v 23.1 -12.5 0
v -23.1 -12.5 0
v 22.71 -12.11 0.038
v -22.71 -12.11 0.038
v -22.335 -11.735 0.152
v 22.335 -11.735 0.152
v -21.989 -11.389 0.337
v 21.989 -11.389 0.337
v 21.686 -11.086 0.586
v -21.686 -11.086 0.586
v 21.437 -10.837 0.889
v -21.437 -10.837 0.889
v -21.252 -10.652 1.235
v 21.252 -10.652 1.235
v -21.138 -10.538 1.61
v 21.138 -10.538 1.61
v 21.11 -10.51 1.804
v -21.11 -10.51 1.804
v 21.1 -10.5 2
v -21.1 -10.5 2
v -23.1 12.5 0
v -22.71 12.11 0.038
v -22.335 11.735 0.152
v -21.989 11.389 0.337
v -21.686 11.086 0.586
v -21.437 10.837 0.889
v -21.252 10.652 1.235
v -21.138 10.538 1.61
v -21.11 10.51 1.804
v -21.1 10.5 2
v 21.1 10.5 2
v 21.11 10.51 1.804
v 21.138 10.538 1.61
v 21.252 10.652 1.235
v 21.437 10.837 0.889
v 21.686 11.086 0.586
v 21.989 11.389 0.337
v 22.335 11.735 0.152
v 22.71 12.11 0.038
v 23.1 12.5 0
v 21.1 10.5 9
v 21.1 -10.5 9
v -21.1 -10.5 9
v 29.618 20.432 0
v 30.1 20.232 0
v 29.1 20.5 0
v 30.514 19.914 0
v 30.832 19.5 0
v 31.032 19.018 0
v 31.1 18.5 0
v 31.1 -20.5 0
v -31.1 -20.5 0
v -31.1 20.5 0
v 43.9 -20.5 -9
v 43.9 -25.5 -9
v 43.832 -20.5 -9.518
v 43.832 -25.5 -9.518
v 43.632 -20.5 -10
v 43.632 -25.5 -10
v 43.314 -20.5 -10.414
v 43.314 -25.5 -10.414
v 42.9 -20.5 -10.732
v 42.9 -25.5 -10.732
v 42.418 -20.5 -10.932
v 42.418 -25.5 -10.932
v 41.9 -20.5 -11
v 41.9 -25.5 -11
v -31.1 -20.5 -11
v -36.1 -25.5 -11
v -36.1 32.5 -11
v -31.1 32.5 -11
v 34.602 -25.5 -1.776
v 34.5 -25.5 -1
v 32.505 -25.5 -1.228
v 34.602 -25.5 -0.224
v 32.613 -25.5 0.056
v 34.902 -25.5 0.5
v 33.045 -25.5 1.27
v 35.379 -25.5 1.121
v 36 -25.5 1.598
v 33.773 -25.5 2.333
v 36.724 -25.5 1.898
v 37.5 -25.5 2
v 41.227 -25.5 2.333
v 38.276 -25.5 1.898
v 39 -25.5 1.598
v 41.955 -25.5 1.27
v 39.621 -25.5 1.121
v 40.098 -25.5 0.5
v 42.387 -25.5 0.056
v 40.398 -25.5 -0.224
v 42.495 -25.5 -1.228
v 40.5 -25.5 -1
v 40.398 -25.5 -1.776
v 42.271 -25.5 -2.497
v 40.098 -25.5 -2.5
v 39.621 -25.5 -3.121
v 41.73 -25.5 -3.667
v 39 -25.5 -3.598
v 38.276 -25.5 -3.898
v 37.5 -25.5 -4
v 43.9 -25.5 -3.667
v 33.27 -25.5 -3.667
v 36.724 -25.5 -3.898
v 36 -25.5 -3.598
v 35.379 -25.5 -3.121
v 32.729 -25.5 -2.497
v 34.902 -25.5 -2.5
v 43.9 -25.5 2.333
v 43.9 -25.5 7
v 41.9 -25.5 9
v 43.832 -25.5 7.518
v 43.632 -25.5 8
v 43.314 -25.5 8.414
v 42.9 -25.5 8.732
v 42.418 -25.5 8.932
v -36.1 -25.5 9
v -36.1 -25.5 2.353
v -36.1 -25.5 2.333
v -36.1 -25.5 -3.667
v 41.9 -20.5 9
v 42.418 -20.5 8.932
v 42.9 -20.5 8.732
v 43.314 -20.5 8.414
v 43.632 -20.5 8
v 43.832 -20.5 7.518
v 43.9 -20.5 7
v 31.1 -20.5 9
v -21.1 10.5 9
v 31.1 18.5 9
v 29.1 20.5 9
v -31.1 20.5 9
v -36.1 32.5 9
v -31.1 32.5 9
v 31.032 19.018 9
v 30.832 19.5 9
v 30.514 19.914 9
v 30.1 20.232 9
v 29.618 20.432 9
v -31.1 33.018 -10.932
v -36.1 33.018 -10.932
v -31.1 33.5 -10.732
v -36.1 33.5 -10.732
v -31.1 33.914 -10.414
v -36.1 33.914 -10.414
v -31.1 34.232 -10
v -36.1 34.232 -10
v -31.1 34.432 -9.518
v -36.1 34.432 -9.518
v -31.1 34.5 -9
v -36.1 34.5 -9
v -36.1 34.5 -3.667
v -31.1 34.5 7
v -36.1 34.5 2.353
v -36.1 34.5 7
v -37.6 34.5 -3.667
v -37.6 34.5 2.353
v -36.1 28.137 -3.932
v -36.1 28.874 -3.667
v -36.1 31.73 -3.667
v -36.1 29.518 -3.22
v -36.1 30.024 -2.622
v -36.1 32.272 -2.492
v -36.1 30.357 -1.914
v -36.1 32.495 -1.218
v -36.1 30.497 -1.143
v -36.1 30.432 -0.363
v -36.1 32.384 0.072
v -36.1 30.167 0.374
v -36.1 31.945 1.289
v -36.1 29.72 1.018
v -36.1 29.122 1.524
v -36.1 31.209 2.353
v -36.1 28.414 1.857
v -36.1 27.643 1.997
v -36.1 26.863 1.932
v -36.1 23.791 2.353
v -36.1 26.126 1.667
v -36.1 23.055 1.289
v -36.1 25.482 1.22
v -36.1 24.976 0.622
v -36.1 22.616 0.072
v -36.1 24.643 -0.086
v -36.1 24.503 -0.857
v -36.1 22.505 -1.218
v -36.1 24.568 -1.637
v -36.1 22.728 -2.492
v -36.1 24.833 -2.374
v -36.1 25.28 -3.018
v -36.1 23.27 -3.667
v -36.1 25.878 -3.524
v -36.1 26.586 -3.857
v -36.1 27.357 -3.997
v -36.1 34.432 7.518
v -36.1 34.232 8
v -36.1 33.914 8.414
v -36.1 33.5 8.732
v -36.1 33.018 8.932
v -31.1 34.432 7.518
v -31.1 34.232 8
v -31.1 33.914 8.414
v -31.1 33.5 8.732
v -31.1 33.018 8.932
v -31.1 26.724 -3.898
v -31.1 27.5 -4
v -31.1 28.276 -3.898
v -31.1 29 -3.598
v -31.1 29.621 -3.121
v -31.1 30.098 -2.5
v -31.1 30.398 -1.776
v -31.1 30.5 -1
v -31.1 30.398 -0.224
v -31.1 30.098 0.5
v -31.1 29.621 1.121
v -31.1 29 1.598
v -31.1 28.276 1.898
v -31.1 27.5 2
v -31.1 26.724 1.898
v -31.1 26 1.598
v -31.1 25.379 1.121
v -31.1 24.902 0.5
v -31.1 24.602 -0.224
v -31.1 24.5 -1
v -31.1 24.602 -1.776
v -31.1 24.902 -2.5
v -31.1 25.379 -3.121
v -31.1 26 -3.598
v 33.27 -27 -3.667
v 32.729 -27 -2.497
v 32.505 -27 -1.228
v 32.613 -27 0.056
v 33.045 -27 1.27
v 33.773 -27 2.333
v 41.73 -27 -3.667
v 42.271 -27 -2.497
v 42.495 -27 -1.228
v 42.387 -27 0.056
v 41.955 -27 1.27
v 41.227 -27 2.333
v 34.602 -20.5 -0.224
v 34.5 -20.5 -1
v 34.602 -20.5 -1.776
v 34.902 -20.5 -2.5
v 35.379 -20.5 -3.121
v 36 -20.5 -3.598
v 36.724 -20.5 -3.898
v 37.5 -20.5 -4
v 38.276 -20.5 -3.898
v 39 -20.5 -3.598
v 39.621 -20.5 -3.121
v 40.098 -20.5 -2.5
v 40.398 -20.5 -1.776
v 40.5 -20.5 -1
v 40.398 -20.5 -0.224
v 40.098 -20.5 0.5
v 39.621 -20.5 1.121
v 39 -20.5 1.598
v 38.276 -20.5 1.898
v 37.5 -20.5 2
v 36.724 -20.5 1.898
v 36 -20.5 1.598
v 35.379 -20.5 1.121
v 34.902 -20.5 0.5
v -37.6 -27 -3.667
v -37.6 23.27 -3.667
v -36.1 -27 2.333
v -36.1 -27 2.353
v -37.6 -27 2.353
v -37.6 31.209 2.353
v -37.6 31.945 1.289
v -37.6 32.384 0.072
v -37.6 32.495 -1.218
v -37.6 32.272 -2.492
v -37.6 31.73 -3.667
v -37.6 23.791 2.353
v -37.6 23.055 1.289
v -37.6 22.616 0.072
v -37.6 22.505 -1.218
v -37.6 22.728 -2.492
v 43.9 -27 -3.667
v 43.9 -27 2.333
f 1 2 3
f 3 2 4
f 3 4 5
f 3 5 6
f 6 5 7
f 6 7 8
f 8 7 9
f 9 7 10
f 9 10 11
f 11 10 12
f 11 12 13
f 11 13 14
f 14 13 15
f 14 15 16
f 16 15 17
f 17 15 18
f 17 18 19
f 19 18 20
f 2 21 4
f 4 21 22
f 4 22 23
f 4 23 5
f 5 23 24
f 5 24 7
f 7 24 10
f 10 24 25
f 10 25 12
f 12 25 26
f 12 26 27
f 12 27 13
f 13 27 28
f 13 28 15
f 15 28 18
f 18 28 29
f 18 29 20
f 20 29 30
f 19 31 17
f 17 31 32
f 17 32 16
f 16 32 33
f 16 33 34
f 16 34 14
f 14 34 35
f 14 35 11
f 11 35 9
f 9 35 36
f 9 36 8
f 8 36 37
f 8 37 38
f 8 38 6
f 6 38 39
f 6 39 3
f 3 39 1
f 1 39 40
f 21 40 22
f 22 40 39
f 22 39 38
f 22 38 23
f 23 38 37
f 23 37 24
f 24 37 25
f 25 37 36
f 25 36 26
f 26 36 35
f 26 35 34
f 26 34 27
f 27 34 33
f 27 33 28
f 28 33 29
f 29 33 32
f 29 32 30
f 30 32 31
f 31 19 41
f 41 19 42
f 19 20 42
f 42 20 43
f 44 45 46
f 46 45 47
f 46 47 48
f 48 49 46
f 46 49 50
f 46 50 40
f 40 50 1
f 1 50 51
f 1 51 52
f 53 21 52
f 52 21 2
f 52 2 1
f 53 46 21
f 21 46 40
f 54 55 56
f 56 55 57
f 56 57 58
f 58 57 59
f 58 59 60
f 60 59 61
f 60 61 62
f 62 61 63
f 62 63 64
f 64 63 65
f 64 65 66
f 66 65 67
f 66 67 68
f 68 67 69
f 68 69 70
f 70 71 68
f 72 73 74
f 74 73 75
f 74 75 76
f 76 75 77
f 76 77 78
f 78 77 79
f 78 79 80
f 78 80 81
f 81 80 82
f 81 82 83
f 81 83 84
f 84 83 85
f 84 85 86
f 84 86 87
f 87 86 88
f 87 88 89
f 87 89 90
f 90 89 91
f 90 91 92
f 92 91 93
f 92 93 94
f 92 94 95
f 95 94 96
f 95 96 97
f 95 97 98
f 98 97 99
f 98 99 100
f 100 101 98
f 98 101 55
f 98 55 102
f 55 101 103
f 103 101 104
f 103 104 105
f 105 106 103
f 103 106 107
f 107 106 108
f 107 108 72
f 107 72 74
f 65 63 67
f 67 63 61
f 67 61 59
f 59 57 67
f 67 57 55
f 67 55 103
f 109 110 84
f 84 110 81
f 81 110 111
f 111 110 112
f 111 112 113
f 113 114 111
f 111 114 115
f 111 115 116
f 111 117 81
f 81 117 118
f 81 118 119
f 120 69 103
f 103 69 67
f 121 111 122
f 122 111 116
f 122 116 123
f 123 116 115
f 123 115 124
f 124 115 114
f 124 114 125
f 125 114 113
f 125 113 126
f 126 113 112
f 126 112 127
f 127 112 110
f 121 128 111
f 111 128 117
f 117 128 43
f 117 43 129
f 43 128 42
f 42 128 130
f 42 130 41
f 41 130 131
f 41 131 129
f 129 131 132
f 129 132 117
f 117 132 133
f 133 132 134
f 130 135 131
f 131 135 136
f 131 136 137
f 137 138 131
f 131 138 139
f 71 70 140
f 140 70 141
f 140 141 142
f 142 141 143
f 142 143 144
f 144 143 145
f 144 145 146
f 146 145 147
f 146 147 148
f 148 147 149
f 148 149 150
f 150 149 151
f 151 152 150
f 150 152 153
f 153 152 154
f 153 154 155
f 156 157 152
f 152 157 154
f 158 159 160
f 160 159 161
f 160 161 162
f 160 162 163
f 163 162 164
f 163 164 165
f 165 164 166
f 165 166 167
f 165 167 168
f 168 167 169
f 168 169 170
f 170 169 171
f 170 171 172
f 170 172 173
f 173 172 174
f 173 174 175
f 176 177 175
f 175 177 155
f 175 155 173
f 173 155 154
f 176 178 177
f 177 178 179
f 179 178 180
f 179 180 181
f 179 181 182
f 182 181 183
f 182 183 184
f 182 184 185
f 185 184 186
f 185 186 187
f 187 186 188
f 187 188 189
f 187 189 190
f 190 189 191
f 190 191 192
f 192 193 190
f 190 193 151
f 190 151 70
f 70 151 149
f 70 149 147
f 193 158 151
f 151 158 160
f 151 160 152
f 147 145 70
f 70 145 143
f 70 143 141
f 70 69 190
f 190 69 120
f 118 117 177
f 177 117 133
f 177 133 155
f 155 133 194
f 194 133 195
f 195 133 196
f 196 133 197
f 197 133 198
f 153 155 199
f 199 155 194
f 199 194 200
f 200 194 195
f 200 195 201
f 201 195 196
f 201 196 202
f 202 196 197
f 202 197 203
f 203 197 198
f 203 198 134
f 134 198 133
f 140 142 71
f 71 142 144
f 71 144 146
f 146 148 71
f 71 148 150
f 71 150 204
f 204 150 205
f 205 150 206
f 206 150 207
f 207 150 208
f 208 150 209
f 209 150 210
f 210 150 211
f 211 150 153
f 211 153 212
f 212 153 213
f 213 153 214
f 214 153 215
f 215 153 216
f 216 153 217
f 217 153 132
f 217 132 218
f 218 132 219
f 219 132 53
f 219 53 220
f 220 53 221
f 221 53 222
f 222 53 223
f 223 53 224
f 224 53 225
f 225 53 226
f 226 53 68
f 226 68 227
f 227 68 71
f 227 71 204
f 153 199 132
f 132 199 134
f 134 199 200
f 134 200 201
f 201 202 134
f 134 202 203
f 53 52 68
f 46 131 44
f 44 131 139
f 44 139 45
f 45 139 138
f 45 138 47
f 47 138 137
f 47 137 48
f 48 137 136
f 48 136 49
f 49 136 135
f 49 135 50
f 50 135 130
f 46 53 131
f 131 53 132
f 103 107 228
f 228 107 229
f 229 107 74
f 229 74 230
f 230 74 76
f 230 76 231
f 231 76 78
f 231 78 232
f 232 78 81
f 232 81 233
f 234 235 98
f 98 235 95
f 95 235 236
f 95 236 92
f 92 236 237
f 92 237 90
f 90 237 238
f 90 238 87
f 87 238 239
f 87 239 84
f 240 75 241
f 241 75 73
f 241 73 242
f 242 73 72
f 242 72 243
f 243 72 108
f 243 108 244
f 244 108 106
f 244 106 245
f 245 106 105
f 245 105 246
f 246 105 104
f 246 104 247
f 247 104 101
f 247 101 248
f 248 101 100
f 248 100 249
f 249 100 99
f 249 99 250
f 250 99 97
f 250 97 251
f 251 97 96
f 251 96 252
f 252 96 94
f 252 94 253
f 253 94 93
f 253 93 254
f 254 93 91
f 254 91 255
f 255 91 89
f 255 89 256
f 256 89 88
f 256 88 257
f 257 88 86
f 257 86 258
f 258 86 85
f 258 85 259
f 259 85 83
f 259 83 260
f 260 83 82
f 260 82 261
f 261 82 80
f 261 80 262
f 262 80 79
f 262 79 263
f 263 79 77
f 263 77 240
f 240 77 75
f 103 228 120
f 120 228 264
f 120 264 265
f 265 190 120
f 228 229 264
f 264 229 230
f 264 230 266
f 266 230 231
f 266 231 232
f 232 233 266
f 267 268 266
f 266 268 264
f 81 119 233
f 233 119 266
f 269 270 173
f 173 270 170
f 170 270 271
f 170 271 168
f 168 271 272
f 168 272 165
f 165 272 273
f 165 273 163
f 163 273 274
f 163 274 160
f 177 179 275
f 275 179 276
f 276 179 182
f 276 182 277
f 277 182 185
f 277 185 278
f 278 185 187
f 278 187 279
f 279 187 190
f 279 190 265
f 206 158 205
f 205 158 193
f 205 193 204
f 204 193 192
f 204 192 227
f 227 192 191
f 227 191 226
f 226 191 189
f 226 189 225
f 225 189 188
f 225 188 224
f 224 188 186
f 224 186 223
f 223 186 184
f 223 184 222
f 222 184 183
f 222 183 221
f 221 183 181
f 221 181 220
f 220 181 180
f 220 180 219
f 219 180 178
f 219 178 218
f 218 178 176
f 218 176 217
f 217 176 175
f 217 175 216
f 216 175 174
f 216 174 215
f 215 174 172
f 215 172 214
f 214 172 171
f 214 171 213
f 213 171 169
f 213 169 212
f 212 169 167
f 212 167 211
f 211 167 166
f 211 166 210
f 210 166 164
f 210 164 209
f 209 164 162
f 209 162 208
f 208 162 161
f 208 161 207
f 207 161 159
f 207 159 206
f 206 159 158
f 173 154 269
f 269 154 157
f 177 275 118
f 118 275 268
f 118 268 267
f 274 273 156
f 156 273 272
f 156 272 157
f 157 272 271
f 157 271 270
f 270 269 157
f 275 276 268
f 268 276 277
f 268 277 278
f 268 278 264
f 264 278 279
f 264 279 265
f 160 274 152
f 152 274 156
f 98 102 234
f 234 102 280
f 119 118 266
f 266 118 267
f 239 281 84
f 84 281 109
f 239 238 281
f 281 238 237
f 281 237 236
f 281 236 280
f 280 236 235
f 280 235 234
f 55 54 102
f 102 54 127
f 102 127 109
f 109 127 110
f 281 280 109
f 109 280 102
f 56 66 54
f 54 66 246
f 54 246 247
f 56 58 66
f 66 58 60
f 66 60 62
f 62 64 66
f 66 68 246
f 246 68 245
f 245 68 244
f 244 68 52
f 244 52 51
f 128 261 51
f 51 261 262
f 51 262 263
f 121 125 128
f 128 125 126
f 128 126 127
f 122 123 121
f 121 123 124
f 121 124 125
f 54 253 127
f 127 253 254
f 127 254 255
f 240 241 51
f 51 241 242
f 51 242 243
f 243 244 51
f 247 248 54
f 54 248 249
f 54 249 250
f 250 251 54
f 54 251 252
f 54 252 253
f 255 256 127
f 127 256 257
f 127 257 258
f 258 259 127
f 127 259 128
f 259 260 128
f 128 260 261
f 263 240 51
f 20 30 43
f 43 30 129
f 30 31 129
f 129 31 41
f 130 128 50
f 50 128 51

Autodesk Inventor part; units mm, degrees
ref_plane "YZ Plane" through (0, 0, 0) normal (1, 0, 0) x (0, 1, 0)
ref_plane "XZ Plane" through (0, 0, 0) normal (0, 1, 0) x (-1, 0, 0)
ref_plane "XY Plane" through (0, 0, 0) normal (0, 0, 1) x (1, 0, 0)
sketch "Sketch1" plane through (0, 0, 0) normal (0, 0, 1) x (1, 0, 0)
  line L0 (-21.1, 10.5) -> (21.1, 10.5)
  line L1 (21.1, 10.5) -> (21.1, -10.5)
  line L2 (21.1, -10.5) -> (-21.1, -10.5)
  line L3 (-21.1, -10.5) -> (-21.1, 10.5)
  line L4 (-21.1, 10.5) -> (21.1, -10.5) construction
  line L5 (21.1, 10.5) -> (-21.1, -10.5) construction
  line L6 (31.1, 20.5) -> (-31.1, 20.5)
  line L7 (-31.1, 20.5) -> (-31.1, -20.5)
  line L8 (-31.1, -20.5) -> (31.1, -20.5)
  line L9 (31.1, -20.5) -> (31.1, 20.5)
  point P0 (0, 0)
  dimension "d0" = 42.2
  dimension "d1" = 21
  dimension "d2" = 10
extrude "Extrusion1" add sketch "Sketch1" along normal blind 9
sketch "Sketch2" plane through (-31.1, -20.5, 0) normal (0, -1, 0) x (1, 0, 0)
  line L0 (62.2, 9) -> (0, 9) projected
  line L1 (0, 9) -> (75, 9)
  line L2 (75, 9) -> (75, -11)
  line L3 (75, -11) -> (0, -11)
  line L4 (0, -11) -> (0, 9)
  point P0 (31.1, 0)
  dimension "d5" = 75
  dimension "d6" = 20
extrude "Extrusion2" add sketch "Sketch2" along normal blind 5
sketch "Sketch3" plane through (-31.1, 20.5, 0) normal (-1, 0, 0) x (0, 0, 1)
  line L0 (9, -46) -> (-11, -46) projected
  line L1 (9, -46) -> (-11, -46)
  line L2 (-11, -46) -> (-11, 14)
  line L3 (-11, 14) -> (9, 14)
  line L4 (9, 14) -> (9, -46)
  point P0 (0, -20.5)
  dimension "d9" = 20
  dimension "d10" = 60
extrude "Extrusion3" add sketch "Sketch3" along normal blind 5
sketch "Sketch4" plane through (-31.1, -25.5, 0) normal (0, -1, 0) x (1, 0, 0)
  line L0 (75, 9) -> (75, -11) projected
  line L1 (75, 2.3333) -> (-5, 2.3333)
  line L2 (-5, -11) -> (-5, 9) projected
  line L3 (75, -3.6667) -> (-5, -3.6667)
  line L4 (75, 9) -> (-5, 9) projected
  line L5 (75, 2.3333) -> (75, -3.6667)
  line L6 (-5, 2.3333) -> (-5, -3.6667)
  point P0 (31.1, 0)
  dimension "d13" = 6
  dimension "d14" = 6.6667
extrude "Extrusion4" add sketch "Sketch4" along normal blind 1.5 contours L0 L3 L2 L1
sketch "Sketch5" plane through (-36.1, 20.5, 0) normal (-1, 0, 0) x (0, 0, 1)
  line L0 (2.353, -47.5) -> (2.353, 14)
  line L1 (9, 14) -> (-11, 14) projected
  line L2 (2.3333, -47.5) -> (-3.6667, -47.5) projected
  line L3 (-3.6667, -47.5) -> (-3.6667, 14)
  line L4 (-3.6667, 14) -> (2.353, 14)
  line L5 (2.353, -47.5) -> (-3.6667, -47.5)
  point P0 (0, -20.5)
extrude "Extrusion5" add sketch "Sketch5" along normal blind 1.5
sketch "Sketch6" plane through (-37.6, 20.5, 0) normal (-1, 0, 0) x (0, 0, 1)
  line L0 (9, 14) -> (2.353, 14) projected
  line L1 (0, 0) -> (9, 0) projected
  line L2 (9, -46) -> (9, 14) projected
  line L3 (-11, 14) -> (-11, -46) projected
  point P0 (0, -20.5)
  point P1 (-1, 7)
  dimension "d19" = 14
  dimension "d20" = 20
  dimension "d21" = 10
  dimension "d22" = 7
hole "Hole1" at (-37.6, 27.5, -1) direction (1, 0, 0) diameter 6 end through all counterbore diameter 10 counterbore depth 1.5
sketch "Sketch7" plane through (-31.1, -27, 0) normal (0, -1, 0) x (1, 0, 0)
  line L0 (75, 2.3333) -> (75, 9) projected
  line L1 (62.2, 0) -> (62.2, 9) projected
  line L2 (75, -11) -> (-5, -11) projected
  line L3 (75, 9) -> (-5, 9) projected
  point P0 (31.1, 0)
  point P1 (68.6, -1)
  dimension "d30" = 12.8
  dimension "d31" = 20
  dimension "d32" = 10
  dimension "d33" = 6.4
hole "Hole2" at (37.5, -27, -1) direction (0, 1, 0) diameter 6 end through all counterbore diameter 10 counterbore depth 1.5
fillet "Fillet1" radius 2 9 edges at (31.1, 20.5, 4.5) (-33.6, 34.5, 9) (-33.6, 34.5, -11) (43.9, -23, 9) (43.9, -23, -11) (0, 10.5, 0) (0, -10.5, 0) (21.1, 0, 0) (-21.1, 0, 0)
equation "\"d21\" = 0.5 * d20"
equation "\"d22\" = 0.5 * d19"
equation "\"d32\" = 0.5 * d31"
equation "\"d33\" = 0.5 * d30"
properties part number "SuporteRJ45"
